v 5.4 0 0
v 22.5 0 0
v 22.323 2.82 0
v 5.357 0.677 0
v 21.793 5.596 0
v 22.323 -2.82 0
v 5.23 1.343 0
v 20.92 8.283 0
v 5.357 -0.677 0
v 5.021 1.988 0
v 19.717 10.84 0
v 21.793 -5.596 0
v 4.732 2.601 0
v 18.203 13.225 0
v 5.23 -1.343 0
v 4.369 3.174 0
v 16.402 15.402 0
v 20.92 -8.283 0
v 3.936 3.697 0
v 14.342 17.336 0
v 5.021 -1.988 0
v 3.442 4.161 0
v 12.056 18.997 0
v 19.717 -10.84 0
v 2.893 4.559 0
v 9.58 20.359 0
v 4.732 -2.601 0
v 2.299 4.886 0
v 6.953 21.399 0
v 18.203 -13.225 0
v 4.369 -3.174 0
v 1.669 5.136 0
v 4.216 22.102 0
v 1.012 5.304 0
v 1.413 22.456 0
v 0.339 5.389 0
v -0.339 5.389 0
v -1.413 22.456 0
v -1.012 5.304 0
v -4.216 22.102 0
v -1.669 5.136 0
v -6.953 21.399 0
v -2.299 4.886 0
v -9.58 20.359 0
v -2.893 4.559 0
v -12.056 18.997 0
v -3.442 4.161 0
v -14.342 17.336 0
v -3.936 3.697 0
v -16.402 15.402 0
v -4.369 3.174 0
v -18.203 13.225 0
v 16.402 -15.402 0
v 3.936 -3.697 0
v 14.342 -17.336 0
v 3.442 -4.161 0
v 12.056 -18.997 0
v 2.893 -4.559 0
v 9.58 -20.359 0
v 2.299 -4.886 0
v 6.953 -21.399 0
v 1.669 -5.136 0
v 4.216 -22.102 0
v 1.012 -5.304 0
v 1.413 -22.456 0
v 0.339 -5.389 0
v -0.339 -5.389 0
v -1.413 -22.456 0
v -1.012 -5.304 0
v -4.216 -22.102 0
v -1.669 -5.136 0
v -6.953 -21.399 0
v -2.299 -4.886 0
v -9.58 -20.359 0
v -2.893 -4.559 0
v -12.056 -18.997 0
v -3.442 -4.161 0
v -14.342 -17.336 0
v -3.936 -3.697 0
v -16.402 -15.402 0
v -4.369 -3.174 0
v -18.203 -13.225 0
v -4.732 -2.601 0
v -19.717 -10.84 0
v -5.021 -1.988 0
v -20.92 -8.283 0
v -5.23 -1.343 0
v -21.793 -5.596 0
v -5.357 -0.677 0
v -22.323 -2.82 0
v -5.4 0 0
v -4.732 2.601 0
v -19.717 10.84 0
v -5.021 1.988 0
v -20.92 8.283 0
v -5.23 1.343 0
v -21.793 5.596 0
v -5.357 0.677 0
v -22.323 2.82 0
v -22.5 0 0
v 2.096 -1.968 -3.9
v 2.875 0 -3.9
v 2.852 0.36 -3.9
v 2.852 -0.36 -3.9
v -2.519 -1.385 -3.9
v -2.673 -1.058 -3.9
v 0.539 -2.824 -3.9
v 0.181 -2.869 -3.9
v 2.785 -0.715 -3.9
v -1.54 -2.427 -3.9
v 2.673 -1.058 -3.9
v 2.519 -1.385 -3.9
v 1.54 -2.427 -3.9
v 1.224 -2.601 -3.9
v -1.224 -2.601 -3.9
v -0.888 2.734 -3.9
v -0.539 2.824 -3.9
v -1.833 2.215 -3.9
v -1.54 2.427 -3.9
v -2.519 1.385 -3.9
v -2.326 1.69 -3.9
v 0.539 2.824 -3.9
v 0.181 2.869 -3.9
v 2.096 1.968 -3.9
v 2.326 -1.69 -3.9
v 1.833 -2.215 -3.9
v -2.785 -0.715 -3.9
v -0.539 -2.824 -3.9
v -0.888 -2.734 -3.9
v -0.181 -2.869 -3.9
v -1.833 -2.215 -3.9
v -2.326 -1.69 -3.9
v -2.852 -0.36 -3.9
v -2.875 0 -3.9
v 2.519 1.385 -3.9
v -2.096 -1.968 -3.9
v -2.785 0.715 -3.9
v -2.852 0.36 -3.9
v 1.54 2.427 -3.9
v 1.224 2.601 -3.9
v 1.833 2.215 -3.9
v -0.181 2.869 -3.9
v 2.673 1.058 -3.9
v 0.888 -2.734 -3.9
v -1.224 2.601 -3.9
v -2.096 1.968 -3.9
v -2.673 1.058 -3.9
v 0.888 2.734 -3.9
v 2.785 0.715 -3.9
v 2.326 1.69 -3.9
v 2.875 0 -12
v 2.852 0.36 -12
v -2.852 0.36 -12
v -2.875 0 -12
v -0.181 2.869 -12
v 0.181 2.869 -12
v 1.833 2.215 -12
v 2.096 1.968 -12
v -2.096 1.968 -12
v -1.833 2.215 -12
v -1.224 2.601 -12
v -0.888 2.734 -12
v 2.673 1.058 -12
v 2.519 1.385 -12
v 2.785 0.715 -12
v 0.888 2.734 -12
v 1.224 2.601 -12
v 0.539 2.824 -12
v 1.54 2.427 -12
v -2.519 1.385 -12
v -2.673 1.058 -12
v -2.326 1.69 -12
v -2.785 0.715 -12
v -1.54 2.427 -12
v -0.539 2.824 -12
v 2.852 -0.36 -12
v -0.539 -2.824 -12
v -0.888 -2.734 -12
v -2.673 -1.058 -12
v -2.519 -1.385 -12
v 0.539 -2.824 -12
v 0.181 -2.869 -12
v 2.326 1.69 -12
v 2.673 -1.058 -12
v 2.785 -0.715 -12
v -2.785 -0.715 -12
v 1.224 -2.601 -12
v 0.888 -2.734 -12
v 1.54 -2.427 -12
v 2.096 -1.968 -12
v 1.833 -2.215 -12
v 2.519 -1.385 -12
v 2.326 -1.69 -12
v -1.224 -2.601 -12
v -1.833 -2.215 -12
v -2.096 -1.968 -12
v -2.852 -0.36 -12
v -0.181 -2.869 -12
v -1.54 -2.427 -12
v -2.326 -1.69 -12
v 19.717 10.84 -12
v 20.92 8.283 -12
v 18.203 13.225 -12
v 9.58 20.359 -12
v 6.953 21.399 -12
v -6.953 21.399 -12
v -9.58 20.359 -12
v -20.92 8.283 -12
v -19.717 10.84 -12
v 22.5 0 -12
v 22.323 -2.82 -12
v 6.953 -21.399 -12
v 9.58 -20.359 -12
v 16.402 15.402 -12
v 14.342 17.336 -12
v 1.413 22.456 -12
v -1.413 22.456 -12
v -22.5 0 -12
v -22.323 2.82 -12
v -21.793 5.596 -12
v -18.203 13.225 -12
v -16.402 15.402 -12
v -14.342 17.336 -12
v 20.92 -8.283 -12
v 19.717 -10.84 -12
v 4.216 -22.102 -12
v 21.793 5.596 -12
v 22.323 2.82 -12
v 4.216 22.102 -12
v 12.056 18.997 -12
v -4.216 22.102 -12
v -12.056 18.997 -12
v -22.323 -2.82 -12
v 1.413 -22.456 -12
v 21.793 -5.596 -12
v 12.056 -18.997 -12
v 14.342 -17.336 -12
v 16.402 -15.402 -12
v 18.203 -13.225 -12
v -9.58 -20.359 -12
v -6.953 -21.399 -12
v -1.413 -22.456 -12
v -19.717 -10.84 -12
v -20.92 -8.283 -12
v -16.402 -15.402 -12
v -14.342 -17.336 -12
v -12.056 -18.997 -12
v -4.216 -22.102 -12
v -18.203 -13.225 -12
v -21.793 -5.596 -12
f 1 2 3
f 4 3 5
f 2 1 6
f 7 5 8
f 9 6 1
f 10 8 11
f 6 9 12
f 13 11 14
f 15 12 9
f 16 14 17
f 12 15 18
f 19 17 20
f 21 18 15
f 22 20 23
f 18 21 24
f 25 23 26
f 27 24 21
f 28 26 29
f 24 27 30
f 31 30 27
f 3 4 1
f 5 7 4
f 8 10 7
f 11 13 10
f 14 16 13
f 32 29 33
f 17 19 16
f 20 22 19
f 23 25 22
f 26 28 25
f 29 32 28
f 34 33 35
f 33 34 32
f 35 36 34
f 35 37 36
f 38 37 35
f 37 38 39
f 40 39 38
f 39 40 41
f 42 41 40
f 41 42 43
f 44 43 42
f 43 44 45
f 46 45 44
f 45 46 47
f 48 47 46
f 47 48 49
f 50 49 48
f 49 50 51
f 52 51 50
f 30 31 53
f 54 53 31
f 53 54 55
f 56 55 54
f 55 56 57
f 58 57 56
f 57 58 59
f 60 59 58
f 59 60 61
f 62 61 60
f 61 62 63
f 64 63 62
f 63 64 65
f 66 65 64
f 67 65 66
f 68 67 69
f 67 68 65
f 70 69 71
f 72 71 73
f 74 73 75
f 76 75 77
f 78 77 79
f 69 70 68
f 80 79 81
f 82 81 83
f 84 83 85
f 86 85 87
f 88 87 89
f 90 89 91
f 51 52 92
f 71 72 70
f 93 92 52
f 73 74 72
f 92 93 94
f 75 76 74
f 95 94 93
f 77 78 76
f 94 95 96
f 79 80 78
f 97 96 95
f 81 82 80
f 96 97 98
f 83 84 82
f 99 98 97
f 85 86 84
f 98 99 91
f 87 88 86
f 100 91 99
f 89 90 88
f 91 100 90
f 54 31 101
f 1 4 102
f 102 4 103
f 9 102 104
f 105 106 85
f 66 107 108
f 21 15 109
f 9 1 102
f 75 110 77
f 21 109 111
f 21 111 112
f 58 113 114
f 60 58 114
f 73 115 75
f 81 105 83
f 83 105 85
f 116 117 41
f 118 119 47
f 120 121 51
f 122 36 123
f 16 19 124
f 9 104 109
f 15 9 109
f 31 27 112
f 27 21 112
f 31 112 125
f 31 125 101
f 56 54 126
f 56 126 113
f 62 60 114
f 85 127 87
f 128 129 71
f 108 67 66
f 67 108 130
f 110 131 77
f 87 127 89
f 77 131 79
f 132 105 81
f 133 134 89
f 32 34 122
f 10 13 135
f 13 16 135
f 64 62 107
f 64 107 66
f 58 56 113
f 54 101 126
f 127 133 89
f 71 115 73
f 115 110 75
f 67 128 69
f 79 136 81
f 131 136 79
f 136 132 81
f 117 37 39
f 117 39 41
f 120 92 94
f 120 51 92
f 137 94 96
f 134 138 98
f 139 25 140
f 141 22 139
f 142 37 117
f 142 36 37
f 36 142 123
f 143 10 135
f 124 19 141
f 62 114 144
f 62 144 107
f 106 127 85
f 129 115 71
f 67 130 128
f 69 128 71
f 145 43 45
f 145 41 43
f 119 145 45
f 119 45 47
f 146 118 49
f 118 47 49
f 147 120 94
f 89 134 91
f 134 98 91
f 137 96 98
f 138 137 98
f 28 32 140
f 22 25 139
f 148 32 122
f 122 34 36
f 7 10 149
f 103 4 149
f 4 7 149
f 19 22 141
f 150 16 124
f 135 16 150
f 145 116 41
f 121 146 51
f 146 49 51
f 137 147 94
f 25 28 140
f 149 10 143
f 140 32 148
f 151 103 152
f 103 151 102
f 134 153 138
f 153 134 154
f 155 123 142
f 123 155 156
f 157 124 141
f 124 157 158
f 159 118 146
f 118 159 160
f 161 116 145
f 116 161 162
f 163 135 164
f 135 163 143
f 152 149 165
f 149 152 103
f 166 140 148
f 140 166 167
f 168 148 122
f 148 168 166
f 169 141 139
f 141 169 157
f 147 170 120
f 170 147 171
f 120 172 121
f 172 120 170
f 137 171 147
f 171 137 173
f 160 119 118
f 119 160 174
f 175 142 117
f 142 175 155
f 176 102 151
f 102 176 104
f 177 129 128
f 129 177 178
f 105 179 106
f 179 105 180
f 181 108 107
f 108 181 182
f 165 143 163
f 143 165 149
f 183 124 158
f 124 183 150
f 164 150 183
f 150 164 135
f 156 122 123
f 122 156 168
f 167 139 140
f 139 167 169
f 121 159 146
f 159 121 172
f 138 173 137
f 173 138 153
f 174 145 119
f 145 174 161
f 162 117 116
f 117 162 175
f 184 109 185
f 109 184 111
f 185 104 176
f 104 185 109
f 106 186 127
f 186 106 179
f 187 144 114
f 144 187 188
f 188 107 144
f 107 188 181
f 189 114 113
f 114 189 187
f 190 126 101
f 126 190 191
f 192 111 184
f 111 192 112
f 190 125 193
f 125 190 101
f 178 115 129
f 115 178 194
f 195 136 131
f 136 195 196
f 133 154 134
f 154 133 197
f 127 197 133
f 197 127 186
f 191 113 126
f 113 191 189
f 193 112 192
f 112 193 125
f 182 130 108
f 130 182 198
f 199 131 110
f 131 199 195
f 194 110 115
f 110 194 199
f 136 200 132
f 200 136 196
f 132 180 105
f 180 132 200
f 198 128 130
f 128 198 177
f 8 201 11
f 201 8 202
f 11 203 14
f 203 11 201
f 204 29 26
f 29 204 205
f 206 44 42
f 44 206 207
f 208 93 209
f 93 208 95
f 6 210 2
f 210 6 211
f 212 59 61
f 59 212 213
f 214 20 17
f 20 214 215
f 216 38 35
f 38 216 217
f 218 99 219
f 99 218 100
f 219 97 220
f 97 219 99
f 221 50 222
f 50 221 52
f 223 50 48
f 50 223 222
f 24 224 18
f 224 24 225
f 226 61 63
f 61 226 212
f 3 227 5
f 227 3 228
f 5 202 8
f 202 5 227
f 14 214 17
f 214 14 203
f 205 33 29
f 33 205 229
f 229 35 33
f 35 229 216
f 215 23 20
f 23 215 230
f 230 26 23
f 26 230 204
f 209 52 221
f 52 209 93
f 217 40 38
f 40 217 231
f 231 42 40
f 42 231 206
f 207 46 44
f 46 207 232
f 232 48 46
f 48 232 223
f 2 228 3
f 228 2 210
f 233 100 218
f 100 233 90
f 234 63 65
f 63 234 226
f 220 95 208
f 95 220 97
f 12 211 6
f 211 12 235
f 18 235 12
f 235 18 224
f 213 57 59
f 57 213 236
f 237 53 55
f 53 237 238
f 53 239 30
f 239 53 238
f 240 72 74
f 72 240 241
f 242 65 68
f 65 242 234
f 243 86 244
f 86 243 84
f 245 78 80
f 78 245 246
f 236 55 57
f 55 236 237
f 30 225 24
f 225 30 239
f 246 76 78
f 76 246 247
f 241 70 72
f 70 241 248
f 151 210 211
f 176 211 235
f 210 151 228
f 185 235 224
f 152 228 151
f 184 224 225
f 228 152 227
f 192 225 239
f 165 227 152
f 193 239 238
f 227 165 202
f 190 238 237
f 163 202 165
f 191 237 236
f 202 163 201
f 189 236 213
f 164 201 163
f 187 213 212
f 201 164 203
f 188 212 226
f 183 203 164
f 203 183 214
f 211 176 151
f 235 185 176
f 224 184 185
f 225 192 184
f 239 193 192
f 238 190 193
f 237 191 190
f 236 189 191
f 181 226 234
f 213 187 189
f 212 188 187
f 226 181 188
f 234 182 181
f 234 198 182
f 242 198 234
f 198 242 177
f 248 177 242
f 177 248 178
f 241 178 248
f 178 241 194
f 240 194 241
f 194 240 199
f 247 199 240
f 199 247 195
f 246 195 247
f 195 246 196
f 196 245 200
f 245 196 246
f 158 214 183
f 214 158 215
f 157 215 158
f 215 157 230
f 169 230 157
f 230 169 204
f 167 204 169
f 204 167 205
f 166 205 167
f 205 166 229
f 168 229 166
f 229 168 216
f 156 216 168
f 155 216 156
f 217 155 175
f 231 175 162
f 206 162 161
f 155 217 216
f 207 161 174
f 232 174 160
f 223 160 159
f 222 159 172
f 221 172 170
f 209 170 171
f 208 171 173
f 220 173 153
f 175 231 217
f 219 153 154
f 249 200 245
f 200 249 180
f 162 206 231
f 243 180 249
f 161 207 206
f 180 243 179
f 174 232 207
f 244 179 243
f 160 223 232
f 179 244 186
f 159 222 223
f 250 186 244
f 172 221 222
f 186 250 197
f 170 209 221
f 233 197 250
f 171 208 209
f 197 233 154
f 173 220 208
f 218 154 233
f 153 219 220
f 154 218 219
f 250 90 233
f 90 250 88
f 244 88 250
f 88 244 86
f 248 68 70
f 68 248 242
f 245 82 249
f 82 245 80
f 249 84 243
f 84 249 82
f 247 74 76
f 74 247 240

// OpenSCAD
$fn = 50;


difference() {
	union() {
		translate(v = [0, 0, -12.0000000000]) {
			cylinder(h = 12, r = 22.5000000000);
		}
	}
	union() {
		translate(v = [0, 0, 0]) {
			rotate(a = [0, 0, 0]) {
				difference() {
					union() {
						translate(v = [0, 0, -15.0000000000]) {
							cylinder(h = 15, r = 2.6000000000);
						}
						translate(v = [0, 0, -3.9000000000]) {
							cylinder(h = 3.9000000000, r1 = 2.8750000000, r2 = 5.4000000000);
						}
						translate(v = [0, 0, -15.0000000000]) {
							cylinder(h = 15, r = 2.8750000000);
						}
						translate(v = [0, 0, -15.0000000000]) {
							cylinder(h = 15, r = 2.6000000000);
						}
					}
					union();
				}
			}
		}
	}
}
